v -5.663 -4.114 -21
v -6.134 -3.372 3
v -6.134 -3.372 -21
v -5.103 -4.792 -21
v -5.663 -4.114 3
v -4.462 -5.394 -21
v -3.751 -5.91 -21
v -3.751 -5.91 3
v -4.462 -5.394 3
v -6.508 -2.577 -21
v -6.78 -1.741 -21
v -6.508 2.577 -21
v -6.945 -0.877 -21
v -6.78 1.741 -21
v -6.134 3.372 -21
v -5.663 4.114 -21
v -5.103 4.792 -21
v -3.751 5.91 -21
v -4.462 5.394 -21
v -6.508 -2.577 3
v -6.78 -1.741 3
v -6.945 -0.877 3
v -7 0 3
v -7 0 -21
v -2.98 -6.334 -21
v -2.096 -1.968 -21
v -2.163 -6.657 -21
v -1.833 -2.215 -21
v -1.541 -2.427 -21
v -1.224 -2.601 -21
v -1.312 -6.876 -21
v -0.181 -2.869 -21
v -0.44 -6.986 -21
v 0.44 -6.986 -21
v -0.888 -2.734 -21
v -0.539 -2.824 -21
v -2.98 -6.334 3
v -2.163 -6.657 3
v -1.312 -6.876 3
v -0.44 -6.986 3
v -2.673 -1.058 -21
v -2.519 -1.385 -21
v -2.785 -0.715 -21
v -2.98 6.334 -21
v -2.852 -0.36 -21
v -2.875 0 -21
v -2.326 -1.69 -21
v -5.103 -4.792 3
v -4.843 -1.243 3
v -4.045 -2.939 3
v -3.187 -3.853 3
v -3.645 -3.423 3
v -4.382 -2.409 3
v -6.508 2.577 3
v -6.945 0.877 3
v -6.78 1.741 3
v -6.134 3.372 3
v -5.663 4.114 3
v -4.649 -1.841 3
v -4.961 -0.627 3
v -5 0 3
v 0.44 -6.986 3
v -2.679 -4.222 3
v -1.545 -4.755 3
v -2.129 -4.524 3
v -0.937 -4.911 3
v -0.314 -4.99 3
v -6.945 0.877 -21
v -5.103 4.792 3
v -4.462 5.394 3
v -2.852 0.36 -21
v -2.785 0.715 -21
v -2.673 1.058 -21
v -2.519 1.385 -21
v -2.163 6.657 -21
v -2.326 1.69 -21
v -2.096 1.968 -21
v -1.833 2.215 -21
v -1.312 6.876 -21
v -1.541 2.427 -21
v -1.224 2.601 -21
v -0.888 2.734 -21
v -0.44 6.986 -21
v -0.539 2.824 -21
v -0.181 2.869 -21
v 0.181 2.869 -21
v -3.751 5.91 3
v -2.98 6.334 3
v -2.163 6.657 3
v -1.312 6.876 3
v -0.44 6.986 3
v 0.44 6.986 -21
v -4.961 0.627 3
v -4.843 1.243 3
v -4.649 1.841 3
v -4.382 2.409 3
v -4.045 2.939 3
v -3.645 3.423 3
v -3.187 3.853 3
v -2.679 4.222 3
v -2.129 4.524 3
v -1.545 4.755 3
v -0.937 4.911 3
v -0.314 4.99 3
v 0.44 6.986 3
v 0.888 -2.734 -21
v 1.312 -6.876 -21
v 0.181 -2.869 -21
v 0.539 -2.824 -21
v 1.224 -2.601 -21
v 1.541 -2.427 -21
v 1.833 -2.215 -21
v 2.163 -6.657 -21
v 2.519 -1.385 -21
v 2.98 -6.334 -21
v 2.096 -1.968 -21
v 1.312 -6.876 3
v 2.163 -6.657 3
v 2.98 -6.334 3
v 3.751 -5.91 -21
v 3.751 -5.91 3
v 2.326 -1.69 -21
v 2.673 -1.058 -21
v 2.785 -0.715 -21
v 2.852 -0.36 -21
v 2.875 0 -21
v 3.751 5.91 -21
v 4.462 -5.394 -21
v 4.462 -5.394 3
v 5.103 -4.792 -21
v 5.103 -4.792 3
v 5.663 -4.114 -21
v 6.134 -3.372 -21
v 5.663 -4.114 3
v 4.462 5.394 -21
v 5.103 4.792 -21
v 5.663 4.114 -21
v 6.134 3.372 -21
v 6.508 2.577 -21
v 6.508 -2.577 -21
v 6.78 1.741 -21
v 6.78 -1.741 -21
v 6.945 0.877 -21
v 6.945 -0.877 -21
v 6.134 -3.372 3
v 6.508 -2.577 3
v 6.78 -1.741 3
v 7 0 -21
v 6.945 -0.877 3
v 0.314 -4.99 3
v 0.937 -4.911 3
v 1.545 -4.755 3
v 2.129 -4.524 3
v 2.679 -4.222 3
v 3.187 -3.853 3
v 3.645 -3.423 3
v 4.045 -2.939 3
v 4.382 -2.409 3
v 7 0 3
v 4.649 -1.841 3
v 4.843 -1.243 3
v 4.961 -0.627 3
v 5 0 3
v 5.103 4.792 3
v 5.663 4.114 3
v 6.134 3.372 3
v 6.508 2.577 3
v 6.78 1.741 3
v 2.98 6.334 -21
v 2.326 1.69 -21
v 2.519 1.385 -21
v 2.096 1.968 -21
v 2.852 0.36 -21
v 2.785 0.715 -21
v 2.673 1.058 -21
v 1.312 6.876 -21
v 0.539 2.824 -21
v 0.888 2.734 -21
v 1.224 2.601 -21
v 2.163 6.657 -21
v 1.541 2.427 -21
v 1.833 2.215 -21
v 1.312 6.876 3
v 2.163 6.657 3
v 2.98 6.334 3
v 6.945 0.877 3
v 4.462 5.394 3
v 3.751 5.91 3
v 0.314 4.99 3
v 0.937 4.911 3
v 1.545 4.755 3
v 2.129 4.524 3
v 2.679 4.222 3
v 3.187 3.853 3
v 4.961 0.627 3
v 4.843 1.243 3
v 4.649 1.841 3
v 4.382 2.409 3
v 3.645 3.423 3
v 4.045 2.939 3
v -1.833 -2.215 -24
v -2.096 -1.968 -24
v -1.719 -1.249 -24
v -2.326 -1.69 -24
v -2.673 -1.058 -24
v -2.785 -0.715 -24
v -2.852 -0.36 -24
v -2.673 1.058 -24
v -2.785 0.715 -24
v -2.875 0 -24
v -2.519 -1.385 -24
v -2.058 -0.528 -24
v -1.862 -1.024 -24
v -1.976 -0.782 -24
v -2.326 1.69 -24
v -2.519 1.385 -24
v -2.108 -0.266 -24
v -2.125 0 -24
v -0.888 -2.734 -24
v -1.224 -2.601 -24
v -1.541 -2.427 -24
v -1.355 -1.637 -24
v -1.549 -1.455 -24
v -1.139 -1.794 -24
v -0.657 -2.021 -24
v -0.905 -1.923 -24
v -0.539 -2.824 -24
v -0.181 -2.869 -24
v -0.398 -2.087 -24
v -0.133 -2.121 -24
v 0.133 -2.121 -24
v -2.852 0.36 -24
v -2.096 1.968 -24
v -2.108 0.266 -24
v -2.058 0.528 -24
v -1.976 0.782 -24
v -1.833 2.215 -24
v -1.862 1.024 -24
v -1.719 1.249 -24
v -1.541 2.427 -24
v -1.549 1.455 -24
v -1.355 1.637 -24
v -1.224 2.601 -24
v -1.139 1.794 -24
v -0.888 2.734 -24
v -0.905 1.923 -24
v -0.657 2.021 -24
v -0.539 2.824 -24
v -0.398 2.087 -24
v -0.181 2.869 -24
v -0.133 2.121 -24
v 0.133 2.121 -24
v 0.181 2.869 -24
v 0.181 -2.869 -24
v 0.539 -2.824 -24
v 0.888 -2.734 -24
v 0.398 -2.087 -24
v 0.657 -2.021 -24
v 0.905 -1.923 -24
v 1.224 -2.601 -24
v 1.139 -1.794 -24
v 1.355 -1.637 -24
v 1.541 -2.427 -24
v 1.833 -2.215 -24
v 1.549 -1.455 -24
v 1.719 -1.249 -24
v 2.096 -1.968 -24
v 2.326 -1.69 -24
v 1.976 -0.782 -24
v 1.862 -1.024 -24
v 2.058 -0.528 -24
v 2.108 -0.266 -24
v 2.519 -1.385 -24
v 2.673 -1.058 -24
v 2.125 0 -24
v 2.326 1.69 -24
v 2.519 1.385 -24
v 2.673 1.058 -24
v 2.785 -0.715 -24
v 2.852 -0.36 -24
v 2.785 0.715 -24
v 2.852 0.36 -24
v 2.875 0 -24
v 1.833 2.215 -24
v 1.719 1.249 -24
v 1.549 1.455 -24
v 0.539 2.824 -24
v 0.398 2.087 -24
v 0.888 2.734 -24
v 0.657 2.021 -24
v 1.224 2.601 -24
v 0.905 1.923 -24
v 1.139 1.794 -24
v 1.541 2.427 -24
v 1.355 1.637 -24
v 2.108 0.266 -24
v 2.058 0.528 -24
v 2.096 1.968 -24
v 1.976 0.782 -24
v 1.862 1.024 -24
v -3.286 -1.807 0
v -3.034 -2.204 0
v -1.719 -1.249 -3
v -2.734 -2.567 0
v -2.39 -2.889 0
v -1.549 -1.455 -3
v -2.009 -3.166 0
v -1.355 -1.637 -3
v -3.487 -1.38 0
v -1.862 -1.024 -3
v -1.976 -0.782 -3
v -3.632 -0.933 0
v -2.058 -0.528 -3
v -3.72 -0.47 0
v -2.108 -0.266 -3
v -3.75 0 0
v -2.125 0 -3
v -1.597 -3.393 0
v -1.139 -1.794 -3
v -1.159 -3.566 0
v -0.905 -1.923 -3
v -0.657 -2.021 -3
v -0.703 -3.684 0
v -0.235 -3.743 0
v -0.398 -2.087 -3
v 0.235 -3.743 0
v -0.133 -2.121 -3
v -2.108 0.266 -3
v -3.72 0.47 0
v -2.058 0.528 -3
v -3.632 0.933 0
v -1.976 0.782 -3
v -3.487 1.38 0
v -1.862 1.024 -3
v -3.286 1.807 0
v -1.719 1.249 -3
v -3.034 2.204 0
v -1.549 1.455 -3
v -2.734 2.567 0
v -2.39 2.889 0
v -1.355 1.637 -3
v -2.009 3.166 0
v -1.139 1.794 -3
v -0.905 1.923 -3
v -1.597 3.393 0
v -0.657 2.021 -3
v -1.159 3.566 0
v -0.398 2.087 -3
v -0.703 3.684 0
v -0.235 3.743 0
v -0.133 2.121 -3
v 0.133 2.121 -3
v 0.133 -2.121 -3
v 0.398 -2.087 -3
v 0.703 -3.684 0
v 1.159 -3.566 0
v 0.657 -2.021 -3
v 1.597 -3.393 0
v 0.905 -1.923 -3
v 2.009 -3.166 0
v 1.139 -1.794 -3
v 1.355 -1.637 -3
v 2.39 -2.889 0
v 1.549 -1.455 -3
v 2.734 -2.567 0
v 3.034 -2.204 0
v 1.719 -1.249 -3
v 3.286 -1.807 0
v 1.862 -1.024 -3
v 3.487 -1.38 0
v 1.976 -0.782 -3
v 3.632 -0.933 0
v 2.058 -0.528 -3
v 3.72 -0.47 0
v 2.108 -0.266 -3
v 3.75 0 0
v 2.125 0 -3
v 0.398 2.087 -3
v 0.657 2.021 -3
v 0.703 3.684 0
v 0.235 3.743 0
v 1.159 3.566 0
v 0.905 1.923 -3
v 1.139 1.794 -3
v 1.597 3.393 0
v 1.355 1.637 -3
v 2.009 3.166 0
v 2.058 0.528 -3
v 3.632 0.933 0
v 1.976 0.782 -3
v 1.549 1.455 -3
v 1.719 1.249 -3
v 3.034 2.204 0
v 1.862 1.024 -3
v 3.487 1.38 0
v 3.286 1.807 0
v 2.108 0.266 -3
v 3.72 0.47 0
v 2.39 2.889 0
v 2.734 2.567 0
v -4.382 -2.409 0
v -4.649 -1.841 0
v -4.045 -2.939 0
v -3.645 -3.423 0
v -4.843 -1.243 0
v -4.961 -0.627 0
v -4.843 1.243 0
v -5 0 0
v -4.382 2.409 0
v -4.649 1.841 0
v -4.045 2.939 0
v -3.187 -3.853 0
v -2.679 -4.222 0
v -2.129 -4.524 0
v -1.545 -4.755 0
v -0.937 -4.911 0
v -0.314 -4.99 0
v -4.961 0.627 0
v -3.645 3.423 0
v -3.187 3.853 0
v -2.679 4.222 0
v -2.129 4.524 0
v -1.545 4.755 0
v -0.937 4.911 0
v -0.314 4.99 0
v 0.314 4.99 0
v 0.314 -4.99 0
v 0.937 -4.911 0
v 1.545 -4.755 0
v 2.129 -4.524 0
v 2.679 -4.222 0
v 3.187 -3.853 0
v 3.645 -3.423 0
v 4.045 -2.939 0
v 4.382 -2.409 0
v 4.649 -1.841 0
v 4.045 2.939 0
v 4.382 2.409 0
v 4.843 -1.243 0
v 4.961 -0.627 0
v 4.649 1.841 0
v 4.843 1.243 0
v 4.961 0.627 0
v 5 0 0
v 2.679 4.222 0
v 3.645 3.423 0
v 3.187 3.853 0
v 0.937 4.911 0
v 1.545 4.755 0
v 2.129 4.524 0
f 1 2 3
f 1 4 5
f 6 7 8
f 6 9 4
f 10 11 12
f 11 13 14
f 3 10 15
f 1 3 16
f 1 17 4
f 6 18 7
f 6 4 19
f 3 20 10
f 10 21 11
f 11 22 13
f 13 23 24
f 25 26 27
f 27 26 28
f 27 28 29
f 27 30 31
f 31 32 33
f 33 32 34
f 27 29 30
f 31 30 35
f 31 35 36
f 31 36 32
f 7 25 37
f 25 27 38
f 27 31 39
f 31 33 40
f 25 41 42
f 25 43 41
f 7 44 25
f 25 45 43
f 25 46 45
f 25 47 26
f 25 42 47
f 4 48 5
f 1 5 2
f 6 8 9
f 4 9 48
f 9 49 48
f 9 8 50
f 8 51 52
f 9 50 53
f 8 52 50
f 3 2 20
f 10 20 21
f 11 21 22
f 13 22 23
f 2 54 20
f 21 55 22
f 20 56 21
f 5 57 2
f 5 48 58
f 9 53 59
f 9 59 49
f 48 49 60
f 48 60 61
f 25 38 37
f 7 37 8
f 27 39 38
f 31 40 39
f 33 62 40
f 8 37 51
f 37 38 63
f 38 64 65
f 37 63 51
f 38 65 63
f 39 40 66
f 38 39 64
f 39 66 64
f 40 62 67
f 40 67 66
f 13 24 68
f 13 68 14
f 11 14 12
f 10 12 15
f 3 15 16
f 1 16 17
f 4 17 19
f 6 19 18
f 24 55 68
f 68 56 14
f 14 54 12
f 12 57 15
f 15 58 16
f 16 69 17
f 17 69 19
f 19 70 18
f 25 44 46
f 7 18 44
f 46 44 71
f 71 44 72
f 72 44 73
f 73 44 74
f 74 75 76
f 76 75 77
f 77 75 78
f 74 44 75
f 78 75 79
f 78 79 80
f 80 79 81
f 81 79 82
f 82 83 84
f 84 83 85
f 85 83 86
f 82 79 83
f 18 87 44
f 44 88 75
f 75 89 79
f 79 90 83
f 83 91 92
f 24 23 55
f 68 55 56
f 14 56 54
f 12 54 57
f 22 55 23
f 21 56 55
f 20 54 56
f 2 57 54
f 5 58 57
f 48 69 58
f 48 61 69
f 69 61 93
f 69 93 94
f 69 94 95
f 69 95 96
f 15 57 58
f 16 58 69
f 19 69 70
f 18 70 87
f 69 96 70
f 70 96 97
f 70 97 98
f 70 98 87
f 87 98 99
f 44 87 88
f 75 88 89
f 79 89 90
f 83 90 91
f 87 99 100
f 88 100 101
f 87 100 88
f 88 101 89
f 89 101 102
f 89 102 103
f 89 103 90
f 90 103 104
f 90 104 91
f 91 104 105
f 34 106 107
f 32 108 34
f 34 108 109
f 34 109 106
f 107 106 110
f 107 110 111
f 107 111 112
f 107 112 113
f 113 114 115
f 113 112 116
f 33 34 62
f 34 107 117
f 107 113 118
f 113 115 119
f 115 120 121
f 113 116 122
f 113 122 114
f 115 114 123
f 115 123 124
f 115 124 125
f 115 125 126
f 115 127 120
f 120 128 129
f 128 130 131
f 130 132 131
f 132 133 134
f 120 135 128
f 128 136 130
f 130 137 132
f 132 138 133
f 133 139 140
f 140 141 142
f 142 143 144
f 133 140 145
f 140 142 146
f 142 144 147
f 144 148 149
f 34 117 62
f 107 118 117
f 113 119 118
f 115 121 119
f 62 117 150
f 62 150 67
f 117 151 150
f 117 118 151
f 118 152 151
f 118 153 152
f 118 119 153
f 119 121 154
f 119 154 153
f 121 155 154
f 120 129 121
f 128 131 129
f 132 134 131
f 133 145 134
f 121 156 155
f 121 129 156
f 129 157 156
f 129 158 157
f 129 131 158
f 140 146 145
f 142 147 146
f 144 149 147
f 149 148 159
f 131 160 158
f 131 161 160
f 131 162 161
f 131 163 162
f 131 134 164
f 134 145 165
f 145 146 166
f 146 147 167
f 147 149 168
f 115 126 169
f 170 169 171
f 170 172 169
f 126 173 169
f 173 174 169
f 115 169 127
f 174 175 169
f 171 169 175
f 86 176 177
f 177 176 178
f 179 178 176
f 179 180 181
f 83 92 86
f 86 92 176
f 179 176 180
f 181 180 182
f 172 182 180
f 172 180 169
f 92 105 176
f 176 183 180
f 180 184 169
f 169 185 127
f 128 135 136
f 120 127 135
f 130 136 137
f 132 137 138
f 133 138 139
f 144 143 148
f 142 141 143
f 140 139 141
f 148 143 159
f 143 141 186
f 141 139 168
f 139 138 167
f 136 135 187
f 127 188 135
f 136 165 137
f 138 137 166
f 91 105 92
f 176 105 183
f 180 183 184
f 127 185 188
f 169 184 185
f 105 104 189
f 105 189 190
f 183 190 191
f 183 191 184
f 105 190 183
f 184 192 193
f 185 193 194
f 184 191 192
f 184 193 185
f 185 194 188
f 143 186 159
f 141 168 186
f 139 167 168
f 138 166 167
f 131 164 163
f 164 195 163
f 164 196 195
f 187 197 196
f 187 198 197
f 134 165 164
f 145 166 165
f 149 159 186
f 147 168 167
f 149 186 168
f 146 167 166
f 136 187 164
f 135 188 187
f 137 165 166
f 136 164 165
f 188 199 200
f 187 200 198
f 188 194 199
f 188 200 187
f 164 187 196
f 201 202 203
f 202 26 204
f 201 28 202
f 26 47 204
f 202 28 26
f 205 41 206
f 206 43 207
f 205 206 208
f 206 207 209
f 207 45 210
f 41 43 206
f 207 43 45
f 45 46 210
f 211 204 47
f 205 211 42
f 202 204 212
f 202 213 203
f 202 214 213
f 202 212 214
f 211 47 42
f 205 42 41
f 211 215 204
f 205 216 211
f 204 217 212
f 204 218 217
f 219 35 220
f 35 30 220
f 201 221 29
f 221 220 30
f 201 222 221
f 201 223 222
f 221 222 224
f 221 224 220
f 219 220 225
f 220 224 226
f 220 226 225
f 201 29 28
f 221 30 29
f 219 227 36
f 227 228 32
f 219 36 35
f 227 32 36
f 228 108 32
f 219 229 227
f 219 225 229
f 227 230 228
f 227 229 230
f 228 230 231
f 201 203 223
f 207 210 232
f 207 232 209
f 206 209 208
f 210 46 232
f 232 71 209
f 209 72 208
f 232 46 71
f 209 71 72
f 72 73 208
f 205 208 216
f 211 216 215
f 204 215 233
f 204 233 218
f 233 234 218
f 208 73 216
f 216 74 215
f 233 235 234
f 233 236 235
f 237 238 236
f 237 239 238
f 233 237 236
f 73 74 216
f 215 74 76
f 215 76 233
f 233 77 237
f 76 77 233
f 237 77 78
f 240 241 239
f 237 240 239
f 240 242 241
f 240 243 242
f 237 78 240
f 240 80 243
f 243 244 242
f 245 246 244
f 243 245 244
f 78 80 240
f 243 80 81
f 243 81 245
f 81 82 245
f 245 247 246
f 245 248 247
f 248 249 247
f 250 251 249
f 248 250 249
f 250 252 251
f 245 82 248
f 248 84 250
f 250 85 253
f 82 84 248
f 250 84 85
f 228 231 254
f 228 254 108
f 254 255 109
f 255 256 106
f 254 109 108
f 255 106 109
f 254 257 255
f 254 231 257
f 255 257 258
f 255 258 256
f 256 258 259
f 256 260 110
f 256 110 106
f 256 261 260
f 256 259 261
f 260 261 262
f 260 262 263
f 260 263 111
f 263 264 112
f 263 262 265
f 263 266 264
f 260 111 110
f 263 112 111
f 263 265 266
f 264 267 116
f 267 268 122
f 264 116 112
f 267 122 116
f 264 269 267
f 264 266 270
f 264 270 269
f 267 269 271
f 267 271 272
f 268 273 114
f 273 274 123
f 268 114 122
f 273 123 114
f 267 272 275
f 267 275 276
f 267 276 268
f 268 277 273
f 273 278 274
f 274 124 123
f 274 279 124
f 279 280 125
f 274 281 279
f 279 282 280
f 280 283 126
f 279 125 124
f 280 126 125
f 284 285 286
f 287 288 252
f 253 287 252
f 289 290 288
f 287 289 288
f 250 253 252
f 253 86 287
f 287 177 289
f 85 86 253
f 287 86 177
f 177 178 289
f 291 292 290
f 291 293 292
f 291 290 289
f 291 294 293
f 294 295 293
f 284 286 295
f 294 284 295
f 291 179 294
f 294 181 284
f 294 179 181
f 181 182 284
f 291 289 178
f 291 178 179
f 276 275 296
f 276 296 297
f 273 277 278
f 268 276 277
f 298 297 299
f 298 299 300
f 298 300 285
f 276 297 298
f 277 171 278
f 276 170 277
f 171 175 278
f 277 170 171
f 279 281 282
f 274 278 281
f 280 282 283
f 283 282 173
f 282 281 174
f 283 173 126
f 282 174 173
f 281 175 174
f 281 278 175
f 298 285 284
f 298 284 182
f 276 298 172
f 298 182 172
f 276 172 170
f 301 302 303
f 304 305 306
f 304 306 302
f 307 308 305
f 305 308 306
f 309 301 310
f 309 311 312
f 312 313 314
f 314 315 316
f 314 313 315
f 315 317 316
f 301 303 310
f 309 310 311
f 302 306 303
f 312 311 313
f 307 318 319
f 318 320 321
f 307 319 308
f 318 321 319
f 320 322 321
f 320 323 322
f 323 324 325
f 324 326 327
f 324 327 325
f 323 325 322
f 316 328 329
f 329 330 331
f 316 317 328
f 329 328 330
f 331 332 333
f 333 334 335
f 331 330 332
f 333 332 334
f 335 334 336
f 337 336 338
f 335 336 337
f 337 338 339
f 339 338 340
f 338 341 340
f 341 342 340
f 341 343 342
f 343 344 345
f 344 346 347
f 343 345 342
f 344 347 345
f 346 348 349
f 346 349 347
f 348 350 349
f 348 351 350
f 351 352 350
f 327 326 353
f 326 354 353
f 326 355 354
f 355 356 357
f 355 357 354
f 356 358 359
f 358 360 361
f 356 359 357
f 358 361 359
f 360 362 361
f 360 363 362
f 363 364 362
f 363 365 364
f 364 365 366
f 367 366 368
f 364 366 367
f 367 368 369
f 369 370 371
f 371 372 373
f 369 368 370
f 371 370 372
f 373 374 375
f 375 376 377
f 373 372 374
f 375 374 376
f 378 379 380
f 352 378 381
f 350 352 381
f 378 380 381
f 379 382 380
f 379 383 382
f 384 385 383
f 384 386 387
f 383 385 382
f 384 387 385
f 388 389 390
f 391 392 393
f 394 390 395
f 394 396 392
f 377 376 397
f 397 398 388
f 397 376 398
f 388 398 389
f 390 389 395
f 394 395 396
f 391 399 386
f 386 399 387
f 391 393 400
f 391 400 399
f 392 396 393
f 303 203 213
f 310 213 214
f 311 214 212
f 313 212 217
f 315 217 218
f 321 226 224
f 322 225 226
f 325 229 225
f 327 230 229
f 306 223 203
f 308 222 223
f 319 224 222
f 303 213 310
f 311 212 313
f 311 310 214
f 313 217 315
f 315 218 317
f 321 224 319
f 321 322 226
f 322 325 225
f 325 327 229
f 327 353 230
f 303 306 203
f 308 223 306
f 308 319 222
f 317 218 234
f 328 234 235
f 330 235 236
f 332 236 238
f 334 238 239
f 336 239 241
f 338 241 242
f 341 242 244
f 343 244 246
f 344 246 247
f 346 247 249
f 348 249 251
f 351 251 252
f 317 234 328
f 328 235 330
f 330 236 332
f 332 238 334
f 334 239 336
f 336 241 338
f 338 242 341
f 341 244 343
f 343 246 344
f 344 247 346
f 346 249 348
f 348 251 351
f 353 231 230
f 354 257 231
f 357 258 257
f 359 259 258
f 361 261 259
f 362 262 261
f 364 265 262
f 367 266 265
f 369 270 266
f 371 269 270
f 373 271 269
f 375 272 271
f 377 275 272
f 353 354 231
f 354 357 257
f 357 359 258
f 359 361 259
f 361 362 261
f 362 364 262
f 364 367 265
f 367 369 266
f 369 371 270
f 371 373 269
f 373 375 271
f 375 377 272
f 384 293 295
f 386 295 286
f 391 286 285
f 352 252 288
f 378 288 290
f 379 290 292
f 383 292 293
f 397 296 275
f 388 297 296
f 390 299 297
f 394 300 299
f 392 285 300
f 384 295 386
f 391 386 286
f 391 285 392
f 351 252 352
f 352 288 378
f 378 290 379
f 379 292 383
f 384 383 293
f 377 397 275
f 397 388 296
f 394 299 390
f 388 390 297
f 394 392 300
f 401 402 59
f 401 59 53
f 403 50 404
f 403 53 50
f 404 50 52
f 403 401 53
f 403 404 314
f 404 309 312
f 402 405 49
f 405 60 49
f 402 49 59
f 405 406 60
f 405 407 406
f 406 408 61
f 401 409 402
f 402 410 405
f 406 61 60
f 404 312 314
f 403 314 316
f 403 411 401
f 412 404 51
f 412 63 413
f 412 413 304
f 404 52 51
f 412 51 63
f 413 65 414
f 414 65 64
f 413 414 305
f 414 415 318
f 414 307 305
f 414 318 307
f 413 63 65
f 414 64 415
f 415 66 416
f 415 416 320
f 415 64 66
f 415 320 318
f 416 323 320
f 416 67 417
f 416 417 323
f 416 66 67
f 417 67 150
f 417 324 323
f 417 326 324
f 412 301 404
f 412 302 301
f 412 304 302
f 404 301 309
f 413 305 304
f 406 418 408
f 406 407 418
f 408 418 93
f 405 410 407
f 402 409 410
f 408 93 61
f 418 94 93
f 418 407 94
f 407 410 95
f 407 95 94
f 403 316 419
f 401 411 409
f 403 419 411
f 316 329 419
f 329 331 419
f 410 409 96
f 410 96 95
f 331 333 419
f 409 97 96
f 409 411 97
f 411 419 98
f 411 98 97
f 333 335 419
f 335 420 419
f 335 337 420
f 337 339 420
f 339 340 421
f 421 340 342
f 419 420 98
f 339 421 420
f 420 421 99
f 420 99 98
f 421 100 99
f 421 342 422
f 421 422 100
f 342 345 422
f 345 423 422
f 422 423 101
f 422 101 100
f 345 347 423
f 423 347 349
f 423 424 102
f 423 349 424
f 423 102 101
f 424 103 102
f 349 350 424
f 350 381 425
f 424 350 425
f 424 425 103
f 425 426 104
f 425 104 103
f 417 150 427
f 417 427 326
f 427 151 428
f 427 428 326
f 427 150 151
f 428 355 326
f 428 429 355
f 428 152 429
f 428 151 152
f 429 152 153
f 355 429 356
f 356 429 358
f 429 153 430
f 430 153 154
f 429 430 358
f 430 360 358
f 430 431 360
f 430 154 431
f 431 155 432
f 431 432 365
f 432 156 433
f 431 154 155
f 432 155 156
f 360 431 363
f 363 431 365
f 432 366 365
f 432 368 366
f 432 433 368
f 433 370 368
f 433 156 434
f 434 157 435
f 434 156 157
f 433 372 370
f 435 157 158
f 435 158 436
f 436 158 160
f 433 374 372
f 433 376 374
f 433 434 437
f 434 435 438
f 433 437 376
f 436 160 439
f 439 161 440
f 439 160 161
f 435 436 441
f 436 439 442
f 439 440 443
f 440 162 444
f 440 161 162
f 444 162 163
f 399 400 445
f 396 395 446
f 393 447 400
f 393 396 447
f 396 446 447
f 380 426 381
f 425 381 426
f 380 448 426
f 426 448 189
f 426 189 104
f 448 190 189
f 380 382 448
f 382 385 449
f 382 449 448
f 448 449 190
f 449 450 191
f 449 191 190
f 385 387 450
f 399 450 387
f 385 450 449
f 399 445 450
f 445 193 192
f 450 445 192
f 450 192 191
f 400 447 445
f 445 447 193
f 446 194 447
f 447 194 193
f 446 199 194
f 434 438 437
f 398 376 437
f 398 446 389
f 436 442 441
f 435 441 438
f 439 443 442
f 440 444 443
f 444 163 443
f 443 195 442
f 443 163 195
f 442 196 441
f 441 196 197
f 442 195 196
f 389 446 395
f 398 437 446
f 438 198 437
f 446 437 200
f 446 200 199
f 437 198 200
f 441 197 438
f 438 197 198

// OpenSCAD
$fn = 50;

difference() {
	union() {
		translate(v = [0, 0, -21.0]) {
			cylinder(h = 24, r = 7.0);
		}
		#translate(v = [0, 0, -24.0]) {
			cylinder(h = 24, r = 2.875);
		}
	}
	union() {
		translate(v = [0, 0, 0]) {
			rotate(a = [0, 0, 0]) {
				difference() {
					union() {
						translate(v = [0, 0, -24.0]) {
							cylinder(h = 24, r = 2.0);
						}
						translate(v = [0, 0, -3]) {
							cylinder(h = 3, r1 = 2.125, r2 = 3.75);
						}
						translate(v = [0, 0, -24.0]) {
							cylinder(h = 24, r = 2.125);
						}
						translate(v = [0, 0, -24.0]) {
							cylinder(h = 24, r = 2.0);
						}
					}
					union();
				}
			}
		}
		#cylinder(h = 3, r = 5.0);
	}
}
